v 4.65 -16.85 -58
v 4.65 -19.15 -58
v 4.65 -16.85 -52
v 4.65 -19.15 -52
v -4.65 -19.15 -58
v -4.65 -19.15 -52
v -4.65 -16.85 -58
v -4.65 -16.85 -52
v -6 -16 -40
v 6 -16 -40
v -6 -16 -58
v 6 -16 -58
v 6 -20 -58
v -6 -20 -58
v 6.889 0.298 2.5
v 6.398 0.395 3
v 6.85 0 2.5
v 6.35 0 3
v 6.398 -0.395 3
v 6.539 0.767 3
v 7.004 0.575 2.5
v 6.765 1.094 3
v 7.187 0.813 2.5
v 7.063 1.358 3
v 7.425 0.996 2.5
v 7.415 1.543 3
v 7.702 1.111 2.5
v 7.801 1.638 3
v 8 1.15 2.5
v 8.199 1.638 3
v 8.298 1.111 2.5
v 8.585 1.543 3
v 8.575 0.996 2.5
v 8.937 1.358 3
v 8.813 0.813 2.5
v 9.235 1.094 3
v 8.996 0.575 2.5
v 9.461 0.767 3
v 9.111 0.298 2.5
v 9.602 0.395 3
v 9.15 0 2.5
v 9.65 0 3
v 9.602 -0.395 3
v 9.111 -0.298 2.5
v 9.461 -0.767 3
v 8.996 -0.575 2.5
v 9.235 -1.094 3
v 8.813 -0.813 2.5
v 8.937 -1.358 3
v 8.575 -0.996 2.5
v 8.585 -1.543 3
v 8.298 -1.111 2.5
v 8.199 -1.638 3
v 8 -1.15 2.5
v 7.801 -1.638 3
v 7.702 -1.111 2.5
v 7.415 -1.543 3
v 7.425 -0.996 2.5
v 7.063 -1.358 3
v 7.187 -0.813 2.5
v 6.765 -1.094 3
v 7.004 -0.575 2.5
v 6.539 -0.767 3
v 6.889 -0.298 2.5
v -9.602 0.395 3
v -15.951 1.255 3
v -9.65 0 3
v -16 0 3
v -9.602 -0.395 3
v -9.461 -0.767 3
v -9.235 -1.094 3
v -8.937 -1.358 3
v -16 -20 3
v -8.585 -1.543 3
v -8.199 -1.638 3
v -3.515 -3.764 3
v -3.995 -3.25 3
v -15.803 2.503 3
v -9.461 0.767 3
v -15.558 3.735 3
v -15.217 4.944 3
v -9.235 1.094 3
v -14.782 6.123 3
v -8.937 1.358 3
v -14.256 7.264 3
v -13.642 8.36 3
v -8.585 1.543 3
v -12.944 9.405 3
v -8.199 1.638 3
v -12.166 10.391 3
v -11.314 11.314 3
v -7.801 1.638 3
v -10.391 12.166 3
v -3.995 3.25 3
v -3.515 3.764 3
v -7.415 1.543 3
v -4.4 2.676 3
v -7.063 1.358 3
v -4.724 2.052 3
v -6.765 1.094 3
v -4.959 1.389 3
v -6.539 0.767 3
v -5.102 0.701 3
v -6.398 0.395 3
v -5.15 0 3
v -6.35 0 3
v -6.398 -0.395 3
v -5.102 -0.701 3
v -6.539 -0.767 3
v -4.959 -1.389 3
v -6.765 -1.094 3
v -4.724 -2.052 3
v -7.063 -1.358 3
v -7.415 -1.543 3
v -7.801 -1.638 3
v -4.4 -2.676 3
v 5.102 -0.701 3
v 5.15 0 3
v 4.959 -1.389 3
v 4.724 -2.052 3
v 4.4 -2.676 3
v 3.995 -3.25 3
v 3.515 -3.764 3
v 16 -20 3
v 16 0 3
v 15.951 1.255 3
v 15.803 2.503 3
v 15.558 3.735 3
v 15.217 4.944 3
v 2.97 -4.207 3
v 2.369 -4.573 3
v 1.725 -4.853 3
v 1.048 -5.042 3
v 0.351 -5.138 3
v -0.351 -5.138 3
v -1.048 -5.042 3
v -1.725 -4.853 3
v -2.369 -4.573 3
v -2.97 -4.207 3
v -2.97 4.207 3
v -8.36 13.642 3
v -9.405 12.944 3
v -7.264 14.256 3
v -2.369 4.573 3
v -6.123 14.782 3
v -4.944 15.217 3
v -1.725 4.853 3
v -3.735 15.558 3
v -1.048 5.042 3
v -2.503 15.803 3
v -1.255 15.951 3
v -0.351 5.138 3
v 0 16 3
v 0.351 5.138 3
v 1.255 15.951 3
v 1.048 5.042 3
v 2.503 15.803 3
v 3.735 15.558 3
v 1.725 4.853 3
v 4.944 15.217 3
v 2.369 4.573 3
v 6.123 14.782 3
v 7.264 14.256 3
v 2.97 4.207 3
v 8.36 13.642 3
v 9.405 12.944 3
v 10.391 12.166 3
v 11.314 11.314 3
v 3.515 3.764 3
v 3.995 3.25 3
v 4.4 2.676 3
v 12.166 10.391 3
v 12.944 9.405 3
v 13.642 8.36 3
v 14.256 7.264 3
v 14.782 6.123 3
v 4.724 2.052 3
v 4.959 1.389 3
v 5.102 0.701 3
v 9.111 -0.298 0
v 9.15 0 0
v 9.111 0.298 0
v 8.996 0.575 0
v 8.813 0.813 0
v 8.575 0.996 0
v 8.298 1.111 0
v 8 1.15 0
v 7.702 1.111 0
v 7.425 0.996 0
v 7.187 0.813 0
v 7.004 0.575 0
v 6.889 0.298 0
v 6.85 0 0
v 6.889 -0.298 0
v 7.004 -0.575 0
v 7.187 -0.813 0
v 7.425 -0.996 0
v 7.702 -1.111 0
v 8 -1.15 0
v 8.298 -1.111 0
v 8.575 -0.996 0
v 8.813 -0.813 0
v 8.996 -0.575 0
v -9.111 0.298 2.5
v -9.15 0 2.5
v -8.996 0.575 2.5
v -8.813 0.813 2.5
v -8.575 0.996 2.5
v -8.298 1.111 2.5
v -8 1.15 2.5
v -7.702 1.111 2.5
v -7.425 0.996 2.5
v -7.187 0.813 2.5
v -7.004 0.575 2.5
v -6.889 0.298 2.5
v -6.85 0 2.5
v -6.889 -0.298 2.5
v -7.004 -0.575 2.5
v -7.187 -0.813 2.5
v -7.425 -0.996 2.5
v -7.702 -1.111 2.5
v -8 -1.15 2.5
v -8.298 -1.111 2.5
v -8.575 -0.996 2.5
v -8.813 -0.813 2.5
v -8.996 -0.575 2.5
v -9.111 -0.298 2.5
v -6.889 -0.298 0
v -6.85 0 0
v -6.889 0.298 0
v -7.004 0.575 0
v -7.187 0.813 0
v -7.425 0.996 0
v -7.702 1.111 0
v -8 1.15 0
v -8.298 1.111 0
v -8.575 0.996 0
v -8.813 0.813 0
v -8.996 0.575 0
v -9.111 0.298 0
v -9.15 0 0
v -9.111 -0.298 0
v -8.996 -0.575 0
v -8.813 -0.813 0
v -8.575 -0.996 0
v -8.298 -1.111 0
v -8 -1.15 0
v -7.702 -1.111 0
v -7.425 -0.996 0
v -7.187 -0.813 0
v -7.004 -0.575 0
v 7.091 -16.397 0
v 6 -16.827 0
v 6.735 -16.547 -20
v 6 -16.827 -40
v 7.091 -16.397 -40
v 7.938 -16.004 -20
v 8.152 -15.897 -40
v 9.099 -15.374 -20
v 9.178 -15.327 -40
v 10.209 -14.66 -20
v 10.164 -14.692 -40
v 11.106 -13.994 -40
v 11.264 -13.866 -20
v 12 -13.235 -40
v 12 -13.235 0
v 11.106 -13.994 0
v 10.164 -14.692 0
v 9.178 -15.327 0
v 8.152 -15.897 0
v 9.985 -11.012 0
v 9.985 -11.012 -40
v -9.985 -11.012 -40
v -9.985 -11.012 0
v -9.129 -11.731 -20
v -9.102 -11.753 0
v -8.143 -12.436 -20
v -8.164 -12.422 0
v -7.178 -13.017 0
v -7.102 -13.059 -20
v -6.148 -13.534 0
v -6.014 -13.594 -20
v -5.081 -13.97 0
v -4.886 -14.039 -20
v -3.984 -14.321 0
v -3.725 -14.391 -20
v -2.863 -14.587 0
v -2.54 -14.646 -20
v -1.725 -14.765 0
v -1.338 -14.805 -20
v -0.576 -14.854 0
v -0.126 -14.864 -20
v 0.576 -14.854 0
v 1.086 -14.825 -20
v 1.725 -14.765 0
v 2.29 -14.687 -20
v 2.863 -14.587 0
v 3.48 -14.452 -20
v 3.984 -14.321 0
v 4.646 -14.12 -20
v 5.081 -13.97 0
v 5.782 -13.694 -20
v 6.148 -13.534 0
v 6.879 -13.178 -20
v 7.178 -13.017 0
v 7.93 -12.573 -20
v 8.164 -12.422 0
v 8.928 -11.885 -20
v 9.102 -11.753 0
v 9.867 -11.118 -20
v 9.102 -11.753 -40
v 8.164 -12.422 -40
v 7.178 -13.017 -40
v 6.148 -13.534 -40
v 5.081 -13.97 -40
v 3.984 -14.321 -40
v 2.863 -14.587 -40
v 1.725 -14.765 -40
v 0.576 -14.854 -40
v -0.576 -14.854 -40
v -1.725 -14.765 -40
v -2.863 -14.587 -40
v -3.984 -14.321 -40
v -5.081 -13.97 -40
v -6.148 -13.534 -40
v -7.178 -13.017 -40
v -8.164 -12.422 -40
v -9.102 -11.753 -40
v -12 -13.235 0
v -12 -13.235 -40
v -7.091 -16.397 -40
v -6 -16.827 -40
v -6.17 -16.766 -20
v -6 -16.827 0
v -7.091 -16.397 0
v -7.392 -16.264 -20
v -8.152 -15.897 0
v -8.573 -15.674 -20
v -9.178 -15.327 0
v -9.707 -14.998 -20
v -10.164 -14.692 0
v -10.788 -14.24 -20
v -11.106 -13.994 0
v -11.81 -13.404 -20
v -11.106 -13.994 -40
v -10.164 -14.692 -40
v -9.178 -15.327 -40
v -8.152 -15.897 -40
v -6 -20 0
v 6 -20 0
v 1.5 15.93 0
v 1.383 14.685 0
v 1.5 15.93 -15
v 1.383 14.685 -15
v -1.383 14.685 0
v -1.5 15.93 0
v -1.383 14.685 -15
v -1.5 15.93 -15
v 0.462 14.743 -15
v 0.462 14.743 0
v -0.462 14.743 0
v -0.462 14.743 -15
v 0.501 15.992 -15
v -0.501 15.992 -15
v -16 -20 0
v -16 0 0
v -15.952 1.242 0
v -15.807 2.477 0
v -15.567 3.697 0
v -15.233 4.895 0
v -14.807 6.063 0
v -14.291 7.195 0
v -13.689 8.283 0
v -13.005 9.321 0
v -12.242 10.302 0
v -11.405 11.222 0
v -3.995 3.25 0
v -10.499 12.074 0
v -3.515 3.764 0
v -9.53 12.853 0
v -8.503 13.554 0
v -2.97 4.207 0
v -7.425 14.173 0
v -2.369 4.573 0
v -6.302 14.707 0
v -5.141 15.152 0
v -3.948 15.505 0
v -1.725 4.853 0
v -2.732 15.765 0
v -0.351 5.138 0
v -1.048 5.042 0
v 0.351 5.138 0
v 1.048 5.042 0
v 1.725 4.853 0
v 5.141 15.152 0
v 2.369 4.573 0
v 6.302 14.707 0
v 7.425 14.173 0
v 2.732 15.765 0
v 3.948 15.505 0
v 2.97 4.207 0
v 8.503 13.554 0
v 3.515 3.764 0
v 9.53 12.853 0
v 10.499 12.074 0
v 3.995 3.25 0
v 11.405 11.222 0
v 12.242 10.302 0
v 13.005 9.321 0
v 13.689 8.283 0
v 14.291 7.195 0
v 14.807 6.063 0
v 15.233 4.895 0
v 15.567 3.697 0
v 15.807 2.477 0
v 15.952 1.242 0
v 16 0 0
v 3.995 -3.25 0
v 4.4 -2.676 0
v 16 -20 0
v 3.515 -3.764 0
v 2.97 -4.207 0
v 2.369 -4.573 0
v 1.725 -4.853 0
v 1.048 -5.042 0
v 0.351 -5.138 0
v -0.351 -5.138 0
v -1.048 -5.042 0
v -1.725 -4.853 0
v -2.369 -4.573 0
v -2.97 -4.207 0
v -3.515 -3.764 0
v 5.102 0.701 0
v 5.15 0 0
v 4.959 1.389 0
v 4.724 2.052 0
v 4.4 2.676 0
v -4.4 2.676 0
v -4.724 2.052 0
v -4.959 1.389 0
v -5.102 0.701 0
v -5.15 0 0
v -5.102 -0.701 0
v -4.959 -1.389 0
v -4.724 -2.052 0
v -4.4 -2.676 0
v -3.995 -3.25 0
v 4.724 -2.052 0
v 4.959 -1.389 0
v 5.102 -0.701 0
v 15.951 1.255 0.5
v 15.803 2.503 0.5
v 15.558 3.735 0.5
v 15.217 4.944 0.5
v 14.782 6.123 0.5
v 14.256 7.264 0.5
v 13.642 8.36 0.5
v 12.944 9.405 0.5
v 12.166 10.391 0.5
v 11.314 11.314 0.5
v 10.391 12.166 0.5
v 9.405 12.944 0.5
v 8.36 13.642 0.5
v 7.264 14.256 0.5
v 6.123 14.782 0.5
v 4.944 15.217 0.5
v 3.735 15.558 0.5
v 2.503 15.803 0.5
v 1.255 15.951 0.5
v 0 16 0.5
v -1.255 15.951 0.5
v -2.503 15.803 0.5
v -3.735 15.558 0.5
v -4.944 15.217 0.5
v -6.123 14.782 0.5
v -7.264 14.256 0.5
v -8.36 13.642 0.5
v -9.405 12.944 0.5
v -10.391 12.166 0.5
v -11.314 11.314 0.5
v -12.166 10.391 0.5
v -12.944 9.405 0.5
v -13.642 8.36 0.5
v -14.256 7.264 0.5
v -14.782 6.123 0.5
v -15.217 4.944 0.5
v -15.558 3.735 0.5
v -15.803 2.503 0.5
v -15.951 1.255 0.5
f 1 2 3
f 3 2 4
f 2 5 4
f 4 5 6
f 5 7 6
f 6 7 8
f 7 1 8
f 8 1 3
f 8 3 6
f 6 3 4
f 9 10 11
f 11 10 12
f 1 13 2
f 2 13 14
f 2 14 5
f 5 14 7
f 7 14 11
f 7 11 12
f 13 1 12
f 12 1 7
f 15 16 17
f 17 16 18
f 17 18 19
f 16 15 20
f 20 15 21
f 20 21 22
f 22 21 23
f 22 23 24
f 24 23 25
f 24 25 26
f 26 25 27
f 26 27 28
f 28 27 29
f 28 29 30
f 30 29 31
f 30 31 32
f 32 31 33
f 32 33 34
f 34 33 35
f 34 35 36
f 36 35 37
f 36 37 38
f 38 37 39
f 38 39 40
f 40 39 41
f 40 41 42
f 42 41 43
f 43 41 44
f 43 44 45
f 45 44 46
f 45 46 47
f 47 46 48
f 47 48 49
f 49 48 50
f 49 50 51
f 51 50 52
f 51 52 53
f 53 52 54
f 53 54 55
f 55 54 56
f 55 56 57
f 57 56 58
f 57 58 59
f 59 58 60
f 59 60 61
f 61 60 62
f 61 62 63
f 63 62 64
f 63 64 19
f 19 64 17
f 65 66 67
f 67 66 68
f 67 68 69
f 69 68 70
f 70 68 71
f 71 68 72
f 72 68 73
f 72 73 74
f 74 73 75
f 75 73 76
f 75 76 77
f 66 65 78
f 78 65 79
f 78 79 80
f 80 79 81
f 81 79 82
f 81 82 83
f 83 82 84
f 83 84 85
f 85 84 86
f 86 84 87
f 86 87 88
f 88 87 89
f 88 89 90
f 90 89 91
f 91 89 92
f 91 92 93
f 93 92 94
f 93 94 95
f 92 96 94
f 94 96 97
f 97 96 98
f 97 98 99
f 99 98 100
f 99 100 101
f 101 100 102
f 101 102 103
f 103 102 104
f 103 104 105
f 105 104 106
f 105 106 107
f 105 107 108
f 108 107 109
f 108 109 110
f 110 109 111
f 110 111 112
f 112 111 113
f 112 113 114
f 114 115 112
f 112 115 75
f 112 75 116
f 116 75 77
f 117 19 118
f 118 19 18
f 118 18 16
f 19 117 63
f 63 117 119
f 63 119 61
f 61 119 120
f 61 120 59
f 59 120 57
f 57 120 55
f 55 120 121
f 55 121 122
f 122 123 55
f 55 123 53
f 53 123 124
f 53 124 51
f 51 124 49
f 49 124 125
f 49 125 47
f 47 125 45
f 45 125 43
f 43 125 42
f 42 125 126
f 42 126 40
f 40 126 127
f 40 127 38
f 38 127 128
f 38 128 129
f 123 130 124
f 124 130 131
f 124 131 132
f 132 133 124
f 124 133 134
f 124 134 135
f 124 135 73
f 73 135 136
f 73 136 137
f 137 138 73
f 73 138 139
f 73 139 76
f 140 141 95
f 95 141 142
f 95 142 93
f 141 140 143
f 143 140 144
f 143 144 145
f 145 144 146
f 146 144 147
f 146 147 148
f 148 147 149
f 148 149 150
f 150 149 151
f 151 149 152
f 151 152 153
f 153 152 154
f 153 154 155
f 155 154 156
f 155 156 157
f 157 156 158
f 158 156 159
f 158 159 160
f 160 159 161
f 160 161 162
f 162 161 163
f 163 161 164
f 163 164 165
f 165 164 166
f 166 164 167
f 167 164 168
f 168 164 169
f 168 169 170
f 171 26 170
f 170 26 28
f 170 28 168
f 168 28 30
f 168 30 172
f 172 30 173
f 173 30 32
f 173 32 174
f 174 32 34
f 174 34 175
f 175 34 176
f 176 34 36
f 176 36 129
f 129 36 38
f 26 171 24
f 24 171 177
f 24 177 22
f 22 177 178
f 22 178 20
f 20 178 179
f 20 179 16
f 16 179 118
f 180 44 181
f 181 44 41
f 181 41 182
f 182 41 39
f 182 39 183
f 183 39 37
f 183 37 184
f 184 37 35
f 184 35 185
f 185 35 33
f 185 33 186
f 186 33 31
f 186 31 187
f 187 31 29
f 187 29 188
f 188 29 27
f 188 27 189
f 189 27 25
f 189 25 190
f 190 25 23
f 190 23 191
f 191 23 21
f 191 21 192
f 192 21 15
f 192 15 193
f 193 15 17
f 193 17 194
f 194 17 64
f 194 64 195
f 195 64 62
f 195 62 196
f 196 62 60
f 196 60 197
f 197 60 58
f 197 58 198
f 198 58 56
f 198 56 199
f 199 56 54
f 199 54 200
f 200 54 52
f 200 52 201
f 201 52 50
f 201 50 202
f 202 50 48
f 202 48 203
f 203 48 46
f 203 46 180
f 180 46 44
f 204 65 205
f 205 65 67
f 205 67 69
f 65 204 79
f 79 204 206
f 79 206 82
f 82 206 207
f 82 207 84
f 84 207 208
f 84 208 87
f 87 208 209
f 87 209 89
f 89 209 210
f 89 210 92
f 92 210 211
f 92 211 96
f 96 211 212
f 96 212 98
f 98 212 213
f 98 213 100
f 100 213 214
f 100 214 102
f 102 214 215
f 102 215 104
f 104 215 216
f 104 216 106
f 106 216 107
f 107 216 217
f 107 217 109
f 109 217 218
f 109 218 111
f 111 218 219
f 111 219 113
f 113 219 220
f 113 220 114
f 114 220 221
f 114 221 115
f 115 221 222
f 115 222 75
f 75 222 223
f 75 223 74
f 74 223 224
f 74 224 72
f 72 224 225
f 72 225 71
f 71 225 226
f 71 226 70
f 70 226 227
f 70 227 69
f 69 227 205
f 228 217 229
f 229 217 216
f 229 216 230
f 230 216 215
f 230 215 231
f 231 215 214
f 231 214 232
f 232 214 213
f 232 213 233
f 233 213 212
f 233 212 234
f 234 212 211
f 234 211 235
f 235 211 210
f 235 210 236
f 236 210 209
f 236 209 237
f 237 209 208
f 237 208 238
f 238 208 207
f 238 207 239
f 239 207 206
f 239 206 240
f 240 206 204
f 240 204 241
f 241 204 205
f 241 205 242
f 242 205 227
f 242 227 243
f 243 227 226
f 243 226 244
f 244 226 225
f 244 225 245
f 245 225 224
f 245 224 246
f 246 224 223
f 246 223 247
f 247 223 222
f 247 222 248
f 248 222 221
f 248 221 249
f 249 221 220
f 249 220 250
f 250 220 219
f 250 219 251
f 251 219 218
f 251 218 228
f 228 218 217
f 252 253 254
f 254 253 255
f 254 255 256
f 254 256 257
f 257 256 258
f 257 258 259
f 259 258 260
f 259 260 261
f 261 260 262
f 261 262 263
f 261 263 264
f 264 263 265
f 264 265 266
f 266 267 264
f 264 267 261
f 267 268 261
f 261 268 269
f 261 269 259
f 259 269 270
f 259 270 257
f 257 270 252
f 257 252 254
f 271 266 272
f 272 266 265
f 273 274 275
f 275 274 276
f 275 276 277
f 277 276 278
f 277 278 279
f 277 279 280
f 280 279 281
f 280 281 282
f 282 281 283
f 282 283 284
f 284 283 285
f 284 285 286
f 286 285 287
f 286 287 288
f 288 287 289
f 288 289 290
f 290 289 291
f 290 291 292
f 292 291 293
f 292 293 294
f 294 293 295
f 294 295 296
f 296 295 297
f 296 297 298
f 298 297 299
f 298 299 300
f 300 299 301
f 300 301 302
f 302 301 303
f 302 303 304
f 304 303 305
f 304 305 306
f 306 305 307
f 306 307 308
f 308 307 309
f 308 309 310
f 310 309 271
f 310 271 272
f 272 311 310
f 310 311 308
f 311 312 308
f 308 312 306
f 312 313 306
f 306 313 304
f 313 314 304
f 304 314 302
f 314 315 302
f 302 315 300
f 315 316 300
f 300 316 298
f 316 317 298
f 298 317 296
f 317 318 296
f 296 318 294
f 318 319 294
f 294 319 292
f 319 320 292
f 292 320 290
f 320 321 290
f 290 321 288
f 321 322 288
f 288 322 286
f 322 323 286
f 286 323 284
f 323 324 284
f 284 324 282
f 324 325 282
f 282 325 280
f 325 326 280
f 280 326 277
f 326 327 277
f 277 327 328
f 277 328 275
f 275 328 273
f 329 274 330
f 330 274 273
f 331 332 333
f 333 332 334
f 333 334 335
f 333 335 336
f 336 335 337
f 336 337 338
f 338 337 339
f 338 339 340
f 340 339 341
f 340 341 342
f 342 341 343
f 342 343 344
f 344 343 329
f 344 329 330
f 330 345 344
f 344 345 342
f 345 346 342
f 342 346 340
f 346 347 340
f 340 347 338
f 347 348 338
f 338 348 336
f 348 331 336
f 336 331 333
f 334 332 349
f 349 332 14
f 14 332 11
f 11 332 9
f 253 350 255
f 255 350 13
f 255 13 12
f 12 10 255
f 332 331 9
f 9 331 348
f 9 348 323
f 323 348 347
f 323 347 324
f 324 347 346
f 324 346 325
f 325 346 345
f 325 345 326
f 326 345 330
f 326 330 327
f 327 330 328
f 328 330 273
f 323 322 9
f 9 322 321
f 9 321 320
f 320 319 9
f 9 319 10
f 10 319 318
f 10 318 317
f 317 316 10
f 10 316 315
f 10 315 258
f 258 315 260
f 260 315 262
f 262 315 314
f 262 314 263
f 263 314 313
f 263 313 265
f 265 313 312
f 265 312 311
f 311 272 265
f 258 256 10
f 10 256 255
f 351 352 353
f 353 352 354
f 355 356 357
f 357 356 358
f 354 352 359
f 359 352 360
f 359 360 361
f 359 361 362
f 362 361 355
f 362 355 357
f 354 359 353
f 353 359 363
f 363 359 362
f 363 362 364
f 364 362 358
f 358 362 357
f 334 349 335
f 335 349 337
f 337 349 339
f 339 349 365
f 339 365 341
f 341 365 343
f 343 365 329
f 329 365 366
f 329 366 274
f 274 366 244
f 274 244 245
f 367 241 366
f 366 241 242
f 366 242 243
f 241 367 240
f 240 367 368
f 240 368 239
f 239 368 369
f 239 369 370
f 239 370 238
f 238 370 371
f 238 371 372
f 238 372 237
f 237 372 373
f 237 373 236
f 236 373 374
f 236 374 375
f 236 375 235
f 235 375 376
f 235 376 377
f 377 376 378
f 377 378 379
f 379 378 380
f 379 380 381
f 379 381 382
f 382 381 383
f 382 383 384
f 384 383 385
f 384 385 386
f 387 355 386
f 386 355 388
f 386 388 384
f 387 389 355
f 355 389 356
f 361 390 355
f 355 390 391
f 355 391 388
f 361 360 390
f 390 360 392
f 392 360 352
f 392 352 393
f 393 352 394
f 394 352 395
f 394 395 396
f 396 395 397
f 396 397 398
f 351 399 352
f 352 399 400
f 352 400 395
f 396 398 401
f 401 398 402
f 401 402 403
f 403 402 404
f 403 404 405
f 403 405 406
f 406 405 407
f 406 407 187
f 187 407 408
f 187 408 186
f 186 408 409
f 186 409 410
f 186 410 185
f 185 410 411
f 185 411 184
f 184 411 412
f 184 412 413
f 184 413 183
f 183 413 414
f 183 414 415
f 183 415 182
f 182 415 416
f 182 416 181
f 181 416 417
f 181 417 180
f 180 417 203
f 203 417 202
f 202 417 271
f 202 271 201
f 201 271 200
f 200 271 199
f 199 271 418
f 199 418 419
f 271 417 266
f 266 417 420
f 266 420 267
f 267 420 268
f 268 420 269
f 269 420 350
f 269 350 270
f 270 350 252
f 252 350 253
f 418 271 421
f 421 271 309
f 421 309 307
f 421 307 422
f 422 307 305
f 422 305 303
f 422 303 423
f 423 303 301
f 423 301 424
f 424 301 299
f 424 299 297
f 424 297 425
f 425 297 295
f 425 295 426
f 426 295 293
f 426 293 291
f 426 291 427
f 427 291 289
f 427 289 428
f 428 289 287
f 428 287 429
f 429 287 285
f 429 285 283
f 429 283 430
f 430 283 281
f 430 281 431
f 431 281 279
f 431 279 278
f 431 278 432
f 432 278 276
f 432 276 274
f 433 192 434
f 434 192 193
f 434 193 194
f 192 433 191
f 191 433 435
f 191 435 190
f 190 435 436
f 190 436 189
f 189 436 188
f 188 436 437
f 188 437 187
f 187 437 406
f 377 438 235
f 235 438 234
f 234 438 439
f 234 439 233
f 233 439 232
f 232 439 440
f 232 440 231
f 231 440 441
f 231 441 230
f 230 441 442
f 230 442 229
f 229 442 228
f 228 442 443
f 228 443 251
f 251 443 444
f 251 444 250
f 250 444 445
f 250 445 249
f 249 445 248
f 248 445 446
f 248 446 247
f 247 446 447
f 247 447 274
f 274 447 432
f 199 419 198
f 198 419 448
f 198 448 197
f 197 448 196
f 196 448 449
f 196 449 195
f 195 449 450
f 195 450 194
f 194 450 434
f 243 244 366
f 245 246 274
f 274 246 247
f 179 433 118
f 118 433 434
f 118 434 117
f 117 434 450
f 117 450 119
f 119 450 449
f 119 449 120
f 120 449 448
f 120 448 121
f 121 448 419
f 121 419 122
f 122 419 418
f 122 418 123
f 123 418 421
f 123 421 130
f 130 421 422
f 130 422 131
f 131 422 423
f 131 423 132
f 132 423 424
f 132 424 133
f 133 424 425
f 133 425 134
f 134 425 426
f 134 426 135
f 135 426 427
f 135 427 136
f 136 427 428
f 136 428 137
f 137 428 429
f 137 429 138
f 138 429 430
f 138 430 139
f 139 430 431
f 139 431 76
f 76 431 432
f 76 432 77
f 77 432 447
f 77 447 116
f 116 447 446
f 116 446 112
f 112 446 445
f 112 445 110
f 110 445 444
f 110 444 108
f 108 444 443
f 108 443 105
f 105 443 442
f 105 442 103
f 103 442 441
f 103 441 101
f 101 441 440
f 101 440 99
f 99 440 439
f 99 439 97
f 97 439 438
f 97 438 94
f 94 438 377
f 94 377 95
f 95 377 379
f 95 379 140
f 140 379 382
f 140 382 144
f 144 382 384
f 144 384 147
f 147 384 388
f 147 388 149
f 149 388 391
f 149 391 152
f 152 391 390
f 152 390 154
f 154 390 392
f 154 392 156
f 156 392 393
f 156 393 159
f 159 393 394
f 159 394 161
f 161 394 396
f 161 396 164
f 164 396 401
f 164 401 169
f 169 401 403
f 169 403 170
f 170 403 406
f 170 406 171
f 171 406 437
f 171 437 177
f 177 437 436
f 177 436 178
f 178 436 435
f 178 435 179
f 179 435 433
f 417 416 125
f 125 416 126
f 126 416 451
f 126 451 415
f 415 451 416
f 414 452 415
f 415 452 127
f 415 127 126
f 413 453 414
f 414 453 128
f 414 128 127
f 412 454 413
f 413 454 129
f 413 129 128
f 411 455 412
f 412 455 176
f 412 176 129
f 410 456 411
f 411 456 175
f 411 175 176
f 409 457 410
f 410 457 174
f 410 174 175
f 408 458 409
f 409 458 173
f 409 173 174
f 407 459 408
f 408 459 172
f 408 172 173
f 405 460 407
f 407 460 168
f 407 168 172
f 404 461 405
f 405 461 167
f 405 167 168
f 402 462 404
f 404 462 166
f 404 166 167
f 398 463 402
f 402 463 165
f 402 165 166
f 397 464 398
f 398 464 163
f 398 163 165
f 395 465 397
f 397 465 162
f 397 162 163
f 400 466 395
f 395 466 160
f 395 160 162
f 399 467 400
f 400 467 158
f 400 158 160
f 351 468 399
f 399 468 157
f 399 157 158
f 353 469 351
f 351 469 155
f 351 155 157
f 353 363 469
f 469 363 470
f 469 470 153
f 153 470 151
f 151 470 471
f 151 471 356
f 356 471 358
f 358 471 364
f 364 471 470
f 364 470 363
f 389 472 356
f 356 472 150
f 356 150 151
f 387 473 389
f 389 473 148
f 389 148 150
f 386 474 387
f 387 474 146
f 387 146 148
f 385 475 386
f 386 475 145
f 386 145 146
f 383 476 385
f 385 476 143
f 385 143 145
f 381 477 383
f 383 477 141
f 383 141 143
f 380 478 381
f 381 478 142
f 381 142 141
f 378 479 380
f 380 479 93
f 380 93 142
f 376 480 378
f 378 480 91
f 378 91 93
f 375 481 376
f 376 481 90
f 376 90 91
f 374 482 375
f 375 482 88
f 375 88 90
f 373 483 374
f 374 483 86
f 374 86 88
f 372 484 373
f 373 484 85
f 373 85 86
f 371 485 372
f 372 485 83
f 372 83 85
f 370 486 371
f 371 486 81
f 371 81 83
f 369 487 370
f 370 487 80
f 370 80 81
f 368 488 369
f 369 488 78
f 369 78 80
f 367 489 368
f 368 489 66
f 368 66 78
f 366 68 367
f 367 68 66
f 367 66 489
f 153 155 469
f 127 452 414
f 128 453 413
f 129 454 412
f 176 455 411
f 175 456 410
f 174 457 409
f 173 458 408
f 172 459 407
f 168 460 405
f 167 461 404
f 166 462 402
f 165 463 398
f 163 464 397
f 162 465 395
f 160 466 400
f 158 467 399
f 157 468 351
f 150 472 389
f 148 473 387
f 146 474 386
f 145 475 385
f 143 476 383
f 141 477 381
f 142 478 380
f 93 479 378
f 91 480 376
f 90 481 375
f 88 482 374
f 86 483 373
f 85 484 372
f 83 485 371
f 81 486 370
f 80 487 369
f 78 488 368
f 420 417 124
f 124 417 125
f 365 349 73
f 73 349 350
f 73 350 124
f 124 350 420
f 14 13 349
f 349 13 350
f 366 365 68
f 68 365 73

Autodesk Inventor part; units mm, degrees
ref_plane "YZ Plane" through (0, 0, 0) normal (1, 0, 0) x (0, 1, 0)
ref_plane "XZ Plane" through (0, 0, 0) normal (0, 1, 0) x (-1, 0, 0)
ref_plane "XY Plane" through (0, 0, 0) normal (0, 0, 1) x (1, 0, 0)
sketch "Sketch1" plane through (0, 0, 0) normal (0, 0, 1) x (1, 0, 0)
  circle A0 centre (0, 0) radius 5.15
  circle A1 centre (0, 0) radius 16
  line L0 (-16, 0) -> (-16, -20)
  line L1 (-16, -20) -> (16, -20)
  line L2 (16, -20) -> (16, 0)
  circle A2 centre (0, 0) radius 14.5
  point P0 (-8, 0)
  point P1 (8, 0)
  dimension "d0" = 10.3
  dimension "d1" = 32
  dimension "d3" = 20
  dimension "d4" = 8
  dimension "d5" = 8
  dimension "d28" = 1.5
extrude "Extrusion1" add sketch "Sketch1" along normal blind 3 contours A1 | L2 L1 L0 A1 | A2
hole "Hole1" at (-8, 0, 0) at (8, 0, 0) direction (0, 0, 1) diameter 2.3 end through all
sketch "Sketch2" plane through (0, 0, 0) normal (0, 0, -1) x (-1, 0, 0)
  arc A0 (1.3828, 14.685) -> (-1.3828, 14.685) centre (0, 0) ccw
  line L0 (-1.3828, 14.685) -> (-1.5, 15.9295)
  arc A1 (16, 0) -> (-16, 0) centre (0, 0) ccw projected
  line L1 (1.3828, 14.685) -> (1.5, 15.9295)
  point P0 (0, 14.75)
  dimension "d15" = 3
  dimension "d16" = 1.25
extrude "Extrusion2" add sketch "Sketch2" along normal blind 15
sketch "Sketch3" plane through (0, 0, 0) normal (0, 0, -1) x (-1, 0, 0)
  arc A0 (-1.9403, 14.7378) -> (1.9403, 14.7378) centre (0, 0) ccw projected
  arc A1 (-2.3319, 17.7122) -> (2.3319, 17.7122) centre (0, 0) ccw
  line L0 (-6, -16.8273) -> (-6, -20)
  line L1 (-6, -20) -> (6, -20)
  line L2 (16, -20) -> (-16, -20) construction
  line L3 (6, -16.8273) -> (6, -20)
  line L4 (-12, -13.2347) -> (-9.9849, -11.0123)
  line L5 (12, -13.2347) -> (9.9849, -11.0123)
  point P0 (0, 0)
  dimension "d19" = 3
  dimension "d20" = 12
  dimension "d21" = 24
  dimension "d22" = 12
extrude "Extrusion3" add sketch "Sketch3" along normal blind 40
chamfer "Chamfer1" distance 0.5 angle 45 2 edges at (-8, -1.15, 3) (8, -1.15, 3)
sketch "Sketch4" plane through (0, 0, -40) normal (0, 0, -1) x (-1, 0, 0)
  line L0 (-6, -20) -> (6, -20) projected
  line L1 (6, -20) -> (6, -16.8273) projected
  line L2 (6, -20) -> (6, -16)
  line L3 (6, -16) -> (-6, -16)
  line L4 (-6, -16.8273) -> (-6, -20) projected
  line L5 (-6, -16) -> (-6, -20)
  point P0 (0, 0)
  dimension "d29" = 4
extrude "Extrusion4" add sketch "Sketch4" along normal blind 18
sketch "Sketch6" plane through (0, 0, -58) normal (0, 0, -1) x (-1, 0, 0)
  line L0 (-4.65, -16.85) -> (4.65, -16.85)
  line L1 (4.65, -16.85) -> (4.65, -19.15)
  line L2 (4.65, -19.15) -> (-4.65, -19.15)
  line L3 (-4.65, -19.15) -> (-4.65, -16.85)
  line L4 (-6, -20) -> (6, -20) projected
  line L5 (6, -20) -> (6, -16) projected
  point P0 (0, 0)
  point P1 (0, -16.85)
  point P2 (0, -20)
  point P3 (4.65, -18)
  point P4 (6, -18)
  dimension "d36" = 2.3
  dimension "d37" = 9.3
extrude "Extrusion5" cut sketch "Sketch6" against normal blind 6
properties part number "Motor Face Mount Mk2"
